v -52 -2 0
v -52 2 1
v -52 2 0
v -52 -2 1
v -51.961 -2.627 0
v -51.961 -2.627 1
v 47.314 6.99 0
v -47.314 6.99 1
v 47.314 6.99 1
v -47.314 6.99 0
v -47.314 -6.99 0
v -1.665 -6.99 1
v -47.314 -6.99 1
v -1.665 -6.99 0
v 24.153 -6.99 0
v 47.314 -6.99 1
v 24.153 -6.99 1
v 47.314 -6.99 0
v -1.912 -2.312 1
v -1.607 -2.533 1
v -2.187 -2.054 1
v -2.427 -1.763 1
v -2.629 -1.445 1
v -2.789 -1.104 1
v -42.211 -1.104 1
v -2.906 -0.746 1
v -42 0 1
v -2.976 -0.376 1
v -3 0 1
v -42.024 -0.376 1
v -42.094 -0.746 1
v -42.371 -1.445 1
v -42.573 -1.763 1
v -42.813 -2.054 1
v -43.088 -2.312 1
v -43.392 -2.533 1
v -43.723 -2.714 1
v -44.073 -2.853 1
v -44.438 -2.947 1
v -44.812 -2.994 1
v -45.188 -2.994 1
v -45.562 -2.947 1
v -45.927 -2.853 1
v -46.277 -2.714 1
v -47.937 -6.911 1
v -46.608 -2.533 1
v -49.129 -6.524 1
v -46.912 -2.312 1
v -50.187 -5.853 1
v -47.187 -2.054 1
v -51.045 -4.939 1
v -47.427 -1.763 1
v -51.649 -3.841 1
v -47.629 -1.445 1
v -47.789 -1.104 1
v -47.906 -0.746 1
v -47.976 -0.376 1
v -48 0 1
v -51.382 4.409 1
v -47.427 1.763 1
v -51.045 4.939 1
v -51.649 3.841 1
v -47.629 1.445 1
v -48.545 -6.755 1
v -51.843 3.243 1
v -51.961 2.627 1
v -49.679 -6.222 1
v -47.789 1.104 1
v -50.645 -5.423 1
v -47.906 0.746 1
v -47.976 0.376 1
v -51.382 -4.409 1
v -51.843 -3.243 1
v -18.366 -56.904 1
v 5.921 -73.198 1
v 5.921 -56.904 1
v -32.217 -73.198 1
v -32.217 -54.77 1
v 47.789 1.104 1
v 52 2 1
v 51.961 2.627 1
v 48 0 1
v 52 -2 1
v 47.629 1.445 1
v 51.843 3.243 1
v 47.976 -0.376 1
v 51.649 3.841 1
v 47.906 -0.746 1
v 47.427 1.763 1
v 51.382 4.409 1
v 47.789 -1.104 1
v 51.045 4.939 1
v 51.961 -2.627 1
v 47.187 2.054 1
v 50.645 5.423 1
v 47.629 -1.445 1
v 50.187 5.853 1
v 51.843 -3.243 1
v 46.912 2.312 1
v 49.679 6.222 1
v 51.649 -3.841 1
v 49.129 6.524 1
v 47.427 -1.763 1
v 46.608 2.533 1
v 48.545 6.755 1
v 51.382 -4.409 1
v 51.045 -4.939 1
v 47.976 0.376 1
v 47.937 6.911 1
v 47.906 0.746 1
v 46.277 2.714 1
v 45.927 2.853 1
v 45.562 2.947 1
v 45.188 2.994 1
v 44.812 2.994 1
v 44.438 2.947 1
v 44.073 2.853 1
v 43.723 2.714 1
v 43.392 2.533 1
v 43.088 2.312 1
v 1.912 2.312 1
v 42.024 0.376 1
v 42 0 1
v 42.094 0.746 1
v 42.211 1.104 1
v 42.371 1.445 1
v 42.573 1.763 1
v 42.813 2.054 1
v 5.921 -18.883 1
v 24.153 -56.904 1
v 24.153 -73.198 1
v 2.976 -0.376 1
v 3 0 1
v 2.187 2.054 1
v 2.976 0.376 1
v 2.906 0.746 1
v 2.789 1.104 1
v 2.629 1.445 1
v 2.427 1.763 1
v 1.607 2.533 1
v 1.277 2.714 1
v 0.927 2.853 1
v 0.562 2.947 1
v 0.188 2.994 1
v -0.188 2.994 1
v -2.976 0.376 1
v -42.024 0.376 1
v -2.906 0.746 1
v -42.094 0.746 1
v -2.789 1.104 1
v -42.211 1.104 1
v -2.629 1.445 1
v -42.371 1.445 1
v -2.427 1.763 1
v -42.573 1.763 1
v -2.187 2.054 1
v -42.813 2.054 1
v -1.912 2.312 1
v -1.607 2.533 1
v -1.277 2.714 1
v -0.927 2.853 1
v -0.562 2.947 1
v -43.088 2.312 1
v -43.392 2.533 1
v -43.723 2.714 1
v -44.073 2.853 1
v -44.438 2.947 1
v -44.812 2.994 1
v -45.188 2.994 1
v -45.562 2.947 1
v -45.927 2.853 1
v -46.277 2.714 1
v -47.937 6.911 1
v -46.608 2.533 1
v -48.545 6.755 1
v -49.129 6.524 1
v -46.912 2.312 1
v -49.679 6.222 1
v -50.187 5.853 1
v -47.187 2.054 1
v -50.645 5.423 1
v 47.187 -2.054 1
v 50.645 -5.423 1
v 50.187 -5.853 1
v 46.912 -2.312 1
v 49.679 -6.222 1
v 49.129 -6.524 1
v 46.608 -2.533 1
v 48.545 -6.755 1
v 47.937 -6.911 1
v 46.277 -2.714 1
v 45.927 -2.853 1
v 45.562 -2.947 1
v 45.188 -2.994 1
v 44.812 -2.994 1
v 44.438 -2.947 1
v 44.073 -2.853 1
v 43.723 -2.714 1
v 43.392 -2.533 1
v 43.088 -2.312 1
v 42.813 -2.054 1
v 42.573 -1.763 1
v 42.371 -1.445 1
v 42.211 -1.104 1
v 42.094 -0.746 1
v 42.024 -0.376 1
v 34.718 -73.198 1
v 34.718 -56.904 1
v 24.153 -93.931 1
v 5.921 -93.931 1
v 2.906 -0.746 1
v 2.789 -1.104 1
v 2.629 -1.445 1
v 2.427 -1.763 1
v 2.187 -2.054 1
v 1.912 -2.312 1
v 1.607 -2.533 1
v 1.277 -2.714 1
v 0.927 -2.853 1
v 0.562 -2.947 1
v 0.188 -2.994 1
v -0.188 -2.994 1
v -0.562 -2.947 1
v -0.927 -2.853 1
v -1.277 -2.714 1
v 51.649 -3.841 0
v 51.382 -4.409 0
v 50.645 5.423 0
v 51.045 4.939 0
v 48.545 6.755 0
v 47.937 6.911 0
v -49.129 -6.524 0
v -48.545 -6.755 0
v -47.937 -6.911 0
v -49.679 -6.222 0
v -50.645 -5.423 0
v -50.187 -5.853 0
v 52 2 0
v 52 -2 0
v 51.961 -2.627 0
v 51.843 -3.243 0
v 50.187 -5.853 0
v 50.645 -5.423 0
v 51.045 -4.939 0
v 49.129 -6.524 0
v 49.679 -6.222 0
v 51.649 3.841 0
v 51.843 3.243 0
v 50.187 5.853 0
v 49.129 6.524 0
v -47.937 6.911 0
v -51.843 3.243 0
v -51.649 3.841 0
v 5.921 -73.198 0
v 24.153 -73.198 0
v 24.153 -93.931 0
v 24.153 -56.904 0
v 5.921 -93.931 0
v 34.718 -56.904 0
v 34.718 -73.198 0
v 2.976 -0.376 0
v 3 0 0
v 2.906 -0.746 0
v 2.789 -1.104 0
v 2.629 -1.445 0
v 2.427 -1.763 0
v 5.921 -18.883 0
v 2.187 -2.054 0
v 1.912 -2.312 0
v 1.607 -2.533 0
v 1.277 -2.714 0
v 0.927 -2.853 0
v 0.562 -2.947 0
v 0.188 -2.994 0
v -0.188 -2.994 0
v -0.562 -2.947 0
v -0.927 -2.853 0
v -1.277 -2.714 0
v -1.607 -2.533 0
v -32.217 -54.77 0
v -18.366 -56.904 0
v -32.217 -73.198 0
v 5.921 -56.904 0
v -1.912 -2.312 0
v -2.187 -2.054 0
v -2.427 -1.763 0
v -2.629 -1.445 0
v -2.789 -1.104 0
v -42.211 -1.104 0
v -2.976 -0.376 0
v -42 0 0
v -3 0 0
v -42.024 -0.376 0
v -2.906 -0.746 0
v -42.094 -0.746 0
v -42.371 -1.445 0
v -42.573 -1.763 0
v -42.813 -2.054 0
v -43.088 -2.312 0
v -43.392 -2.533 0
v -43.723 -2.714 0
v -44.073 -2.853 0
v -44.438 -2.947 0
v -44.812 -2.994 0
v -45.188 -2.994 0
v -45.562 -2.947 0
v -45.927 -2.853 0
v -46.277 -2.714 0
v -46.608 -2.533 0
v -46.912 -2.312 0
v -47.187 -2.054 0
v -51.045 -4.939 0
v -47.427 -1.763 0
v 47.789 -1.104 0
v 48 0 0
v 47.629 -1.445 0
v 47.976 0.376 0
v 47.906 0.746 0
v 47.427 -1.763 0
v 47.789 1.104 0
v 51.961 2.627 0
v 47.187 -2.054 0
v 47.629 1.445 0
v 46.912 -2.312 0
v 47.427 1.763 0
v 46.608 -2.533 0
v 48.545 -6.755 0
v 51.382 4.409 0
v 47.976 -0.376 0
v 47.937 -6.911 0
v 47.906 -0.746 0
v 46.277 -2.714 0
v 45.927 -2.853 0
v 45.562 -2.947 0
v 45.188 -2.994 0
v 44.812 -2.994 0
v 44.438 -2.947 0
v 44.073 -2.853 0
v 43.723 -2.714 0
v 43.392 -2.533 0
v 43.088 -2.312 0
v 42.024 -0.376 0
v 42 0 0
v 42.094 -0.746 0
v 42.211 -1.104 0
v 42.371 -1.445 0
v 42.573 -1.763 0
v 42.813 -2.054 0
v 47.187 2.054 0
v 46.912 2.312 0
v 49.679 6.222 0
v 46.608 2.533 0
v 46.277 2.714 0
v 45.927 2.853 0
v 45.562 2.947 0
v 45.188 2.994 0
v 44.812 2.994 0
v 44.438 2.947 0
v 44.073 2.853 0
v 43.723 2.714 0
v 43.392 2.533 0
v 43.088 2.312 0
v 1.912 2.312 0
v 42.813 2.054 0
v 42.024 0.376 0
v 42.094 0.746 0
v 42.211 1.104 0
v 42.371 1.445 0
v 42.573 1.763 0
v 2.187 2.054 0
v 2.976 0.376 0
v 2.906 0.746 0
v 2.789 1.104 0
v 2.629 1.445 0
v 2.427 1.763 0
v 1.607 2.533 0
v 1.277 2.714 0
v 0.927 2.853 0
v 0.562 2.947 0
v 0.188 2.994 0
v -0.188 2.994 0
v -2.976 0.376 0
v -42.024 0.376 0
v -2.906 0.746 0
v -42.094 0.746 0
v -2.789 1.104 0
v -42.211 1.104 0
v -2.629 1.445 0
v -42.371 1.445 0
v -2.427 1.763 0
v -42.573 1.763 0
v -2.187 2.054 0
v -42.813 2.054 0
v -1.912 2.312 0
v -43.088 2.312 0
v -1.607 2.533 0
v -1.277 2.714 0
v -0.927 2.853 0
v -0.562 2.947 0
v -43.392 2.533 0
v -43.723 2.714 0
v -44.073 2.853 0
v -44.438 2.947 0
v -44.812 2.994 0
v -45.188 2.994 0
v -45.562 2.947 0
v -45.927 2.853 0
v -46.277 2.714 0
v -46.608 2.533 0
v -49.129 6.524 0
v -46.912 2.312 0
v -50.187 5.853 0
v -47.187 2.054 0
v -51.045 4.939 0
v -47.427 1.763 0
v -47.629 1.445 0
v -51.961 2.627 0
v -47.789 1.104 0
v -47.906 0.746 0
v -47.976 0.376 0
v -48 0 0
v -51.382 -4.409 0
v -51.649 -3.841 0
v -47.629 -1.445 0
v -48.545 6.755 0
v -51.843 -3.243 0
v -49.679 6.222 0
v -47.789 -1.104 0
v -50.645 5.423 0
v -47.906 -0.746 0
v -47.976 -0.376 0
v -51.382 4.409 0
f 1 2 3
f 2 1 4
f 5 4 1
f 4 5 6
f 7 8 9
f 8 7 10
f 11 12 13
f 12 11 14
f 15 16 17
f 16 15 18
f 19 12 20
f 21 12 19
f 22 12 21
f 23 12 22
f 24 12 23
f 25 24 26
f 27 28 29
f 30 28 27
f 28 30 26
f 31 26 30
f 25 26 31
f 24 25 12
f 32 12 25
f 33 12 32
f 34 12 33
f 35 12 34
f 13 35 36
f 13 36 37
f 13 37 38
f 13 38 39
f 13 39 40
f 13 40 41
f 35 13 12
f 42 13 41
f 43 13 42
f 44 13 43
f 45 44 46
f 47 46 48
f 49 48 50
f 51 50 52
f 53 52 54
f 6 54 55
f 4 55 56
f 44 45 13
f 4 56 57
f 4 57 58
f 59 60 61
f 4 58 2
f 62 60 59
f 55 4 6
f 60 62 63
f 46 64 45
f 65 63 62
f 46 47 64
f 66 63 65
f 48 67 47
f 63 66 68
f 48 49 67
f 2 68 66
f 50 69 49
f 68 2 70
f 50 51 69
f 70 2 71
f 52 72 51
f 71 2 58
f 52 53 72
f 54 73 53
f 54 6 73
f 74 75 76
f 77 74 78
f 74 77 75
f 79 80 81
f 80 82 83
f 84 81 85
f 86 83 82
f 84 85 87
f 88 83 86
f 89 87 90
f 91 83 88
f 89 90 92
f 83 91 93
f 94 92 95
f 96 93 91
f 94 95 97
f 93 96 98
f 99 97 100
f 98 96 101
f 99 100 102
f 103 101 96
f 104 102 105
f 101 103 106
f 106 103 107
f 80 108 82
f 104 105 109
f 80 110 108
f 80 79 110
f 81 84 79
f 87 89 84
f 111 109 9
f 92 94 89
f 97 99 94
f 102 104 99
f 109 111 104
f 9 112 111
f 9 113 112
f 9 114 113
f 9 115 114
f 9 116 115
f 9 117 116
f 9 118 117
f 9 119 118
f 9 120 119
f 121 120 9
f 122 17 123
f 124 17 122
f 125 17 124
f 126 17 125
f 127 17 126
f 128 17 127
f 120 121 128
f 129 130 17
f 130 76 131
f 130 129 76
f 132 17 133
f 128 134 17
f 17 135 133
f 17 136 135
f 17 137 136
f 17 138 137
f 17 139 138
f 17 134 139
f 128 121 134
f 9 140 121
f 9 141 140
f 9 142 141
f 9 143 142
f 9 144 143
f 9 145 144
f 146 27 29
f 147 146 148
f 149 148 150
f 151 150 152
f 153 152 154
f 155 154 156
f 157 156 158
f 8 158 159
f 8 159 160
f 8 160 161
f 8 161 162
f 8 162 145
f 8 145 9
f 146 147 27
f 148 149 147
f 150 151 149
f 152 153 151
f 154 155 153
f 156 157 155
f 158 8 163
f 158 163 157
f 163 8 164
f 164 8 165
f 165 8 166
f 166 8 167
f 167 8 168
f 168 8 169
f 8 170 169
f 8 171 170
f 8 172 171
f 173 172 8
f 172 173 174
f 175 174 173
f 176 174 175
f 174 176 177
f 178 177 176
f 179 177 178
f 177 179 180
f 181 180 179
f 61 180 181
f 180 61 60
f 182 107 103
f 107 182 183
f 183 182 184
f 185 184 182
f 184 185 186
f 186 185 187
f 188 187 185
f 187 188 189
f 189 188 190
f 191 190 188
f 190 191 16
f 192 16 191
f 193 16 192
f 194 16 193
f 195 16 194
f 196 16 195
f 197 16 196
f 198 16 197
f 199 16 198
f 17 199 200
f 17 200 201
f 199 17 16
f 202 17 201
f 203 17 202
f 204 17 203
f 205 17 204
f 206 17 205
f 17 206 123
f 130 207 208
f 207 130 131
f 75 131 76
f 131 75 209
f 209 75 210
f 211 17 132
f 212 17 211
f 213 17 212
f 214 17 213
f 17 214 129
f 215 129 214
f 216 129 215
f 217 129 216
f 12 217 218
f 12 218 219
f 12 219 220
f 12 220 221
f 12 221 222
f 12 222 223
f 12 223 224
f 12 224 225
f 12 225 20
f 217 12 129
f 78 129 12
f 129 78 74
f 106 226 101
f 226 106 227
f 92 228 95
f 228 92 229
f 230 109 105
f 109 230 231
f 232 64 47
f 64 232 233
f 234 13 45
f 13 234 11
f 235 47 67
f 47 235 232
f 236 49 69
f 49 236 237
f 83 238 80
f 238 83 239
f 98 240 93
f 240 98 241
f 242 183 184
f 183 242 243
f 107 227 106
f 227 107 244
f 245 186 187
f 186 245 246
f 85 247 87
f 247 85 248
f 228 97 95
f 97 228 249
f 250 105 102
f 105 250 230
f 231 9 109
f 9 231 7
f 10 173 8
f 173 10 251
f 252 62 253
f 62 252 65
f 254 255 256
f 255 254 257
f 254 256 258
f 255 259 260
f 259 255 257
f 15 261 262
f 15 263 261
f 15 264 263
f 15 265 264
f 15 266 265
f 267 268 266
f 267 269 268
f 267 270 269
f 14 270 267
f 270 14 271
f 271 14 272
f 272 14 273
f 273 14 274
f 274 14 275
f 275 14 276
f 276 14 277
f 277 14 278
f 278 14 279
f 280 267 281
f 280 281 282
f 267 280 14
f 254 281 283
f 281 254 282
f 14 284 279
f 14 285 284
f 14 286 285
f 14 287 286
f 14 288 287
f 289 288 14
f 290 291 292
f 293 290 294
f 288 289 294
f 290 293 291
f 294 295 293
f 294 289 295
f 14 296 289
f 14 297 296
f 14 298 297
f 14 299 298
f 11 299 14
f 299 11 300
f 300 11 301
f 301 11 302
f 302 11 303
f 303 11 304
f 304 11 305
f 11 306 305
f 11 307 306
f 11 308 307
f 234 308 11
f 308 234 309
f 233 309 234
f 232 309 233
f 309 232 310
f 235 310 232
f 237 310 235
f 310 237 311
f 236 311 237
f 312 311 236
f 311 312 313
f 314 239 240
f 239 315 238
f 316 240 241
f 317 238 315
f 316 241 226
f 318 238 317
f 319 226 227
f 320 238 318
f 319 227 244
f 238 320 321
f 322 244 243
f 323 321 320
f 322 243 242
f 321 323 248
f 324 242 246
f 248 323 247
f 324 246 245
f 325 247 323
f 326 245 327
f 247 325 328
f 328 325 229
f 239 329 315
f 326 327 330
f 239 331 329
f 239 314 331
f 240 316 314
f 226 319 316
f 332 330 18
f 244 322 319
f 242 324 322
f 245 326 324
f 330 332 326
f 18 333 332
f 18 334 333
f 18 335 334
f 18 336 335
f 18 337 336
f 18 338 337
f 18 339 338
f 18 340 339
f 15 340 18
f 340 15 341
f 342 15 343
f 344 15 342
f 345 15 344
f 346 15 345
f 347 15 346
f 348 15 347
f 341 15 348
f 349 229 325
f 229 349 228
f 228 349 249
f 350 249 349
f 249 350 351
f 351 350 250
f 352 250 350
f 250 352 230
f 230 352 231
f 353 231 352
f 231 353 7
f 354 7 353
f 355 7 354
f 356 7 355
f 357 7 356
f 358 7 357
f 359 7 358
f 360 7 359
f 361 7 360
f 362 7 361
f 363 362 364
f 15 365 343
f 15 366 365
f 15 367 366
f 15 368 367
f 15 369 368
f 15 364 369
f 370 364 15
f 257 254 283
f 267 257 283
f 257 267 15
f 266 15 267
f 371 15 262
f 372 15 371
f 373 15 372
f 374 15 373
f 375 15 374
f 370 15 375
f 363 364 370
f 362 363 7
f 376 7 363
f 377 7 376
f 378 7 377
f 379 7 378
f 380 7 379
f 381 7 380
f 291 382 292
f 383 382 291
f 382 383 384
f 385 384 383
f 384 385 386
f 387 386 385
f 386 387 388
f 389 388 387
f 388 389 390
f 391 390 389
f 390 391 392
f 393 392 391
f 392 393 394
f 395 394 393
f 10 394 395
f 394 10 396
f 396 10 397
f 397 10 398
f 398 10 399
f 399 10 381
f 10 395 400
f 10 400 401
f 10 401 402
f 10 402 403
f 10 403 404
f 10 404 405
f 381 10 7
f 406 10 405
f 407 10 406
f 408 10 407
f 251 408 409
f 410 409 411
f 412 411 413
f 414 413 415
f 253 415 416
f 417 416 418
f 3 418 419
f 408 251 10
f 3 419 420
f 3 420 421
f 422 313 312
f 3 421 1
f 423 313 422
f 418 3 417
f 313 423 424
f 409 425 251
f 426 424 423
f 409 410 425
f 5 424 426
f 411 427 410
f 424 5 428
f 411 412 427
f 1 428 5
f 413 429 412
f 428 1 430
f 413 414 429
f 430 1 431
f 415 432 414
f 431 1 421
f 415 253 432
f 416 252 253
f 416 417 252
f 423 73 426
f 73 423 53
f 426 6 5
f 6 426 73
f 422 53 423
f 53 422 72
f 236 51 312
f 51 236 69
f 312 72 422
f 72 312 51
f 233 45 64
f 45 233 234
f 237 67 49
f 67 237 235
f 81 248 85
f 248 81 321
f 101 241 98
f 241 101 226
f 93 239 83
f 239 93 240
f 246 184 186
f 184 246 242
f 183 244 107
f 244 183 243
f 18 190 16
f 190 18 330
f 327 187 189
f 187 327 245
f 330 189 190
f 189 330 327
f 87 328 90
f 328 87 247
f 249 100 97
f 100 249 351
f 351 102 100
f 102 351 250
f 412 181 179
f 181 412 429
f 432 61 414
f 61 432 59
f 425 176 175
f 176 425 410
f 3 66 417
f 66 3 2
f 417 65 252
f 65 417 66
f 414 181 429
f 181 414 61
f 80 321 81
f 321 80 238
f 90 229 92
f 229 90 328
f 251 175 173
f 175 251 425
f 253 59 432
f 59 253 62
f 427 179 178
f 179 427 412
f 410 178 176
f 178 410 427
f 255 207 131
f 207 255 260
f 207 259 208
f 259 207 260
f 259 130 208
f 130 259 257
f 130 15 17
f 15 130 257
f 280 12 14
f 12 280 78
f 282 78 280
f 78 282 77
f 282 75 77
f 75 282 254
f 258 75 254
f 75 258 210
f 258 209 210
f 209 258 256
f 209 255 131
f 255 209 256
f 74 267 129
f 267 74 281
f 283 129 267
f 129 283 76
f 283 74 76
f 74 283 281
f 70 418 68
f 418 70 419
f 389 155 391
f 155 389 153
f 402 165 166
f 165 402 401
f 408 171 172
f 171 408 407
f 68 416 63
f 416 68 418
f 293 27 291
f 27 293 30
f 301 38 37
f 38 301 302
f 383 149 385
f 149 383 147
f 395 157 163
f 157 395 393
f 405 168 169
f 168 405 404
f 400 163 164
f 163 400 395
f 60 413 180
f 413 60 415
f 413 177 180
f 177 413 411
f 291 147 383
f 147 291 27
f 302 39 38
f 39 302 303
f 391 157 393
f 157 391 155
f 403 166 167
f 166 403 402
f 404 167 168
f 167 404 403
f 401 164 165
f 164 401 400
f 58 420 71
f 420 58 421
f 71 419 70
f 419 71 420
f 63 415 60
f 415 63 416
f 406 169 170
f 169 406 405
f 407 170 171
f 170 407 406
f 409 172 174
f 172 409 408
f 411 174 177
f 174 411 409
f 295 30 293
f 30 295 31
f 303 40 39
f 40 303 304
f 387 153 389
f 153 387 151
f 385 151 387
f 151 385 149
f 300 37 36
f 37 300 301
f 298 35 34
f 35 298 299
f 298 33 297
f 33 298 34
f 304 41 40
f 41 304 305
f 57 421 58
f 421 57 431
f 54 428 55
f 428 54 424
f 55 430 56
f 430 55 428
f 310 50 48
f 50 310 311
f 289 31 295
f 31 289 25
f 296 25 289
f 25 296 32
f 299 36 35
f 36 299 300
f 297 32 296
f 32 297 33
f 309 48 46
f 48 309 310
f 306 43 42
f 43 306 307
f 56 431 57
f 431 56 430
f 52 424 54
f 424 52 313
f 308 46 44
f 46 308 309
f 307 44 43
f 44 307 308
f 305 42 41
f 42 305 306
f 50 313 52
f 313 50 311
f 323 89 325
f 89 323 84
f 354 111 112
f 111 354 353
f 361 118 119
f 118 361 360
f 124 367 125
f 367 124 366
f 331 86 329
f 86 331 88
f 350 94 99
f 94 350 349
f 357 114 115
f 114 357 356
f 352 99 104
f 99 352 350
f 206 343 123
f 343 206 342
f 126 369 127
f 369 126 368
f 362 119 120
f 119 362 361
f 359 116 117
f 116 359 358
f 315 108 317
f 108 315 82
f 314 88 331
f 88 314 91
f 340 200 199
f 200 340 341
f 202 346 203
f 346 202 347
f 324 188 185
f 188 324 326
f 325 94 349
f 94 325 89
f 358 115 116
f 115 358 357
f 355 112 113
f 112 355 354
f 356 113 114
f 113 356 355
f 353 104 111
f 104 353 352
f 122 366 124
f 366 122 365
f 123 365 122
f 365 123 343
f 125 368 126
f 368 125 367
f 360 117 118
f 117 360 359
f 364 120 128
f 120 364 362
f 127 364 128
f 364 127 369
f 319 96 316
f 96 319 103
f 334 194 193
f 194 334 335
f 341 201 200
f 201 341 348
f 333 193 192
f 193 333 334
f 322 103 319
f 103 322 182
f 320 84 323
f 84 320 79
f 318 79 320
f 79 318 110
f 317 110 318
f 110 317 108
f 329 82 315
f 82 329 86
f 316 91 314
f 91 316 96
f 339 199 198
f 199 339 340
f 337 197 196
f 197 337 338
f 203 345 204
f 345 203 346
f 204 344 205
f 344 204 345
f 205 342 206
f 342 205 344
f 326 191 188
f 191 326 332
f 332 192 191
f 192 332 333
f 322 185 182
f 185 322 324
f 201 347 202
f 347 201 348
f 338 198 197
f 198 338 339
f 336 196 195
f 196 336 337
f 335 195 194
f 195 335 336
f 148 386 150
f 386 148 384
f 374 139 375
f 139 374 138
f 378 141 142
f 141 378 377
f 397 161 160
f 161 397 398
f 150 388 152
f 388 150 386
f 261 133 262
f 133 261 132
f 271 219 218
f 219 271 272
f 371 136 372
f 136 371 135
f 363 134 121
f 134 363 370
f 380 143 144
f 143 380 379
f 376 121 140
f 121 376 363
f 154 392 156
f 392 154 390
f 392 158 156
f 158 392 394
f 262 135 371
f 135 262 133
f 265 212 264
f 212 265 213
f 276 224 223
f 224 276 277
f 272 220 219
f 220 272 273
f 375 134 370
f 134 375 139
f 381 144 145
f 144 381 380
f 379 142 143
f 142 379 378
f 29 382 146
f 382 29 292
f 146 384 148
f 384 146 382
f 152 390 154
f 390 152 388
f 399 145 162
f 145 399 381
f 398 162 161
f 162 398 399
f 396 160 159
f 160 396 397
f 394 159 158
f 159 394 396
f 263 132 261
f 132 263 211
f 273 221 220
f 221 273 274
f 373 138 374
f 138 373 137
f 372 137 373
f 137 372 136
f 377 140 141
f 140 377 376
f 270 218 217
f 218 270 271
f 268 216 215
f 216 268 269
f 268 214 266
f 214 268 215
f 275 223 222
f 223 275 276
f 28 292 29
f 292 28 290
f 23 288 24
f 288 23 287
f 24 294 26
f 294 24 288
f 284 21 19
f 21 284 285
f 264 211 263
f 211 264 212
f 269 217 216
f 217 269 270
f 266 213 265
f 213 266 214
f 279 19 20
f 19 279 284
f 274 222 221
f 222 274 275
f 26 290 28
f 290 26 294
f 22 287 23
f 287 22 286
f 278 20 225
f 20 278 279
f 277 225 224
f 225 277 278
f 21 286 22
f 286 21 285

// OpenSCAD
$fn = 50;


difference() {
	union() {
		translate(v = [0, 0, 0]) {
			rotate(a = [0, 0, 0]) {
				hull() {
					translate(v = [-47.0000000000, 2.0000000000, 0]) {
						rotate(a = [0, 0, 0]) {
							translate(v = [0, 0, 0]) {
								rotate(a = [0, 0, 0]) {
									cylinder(h = 1, r = 5);
								}
							}
						}
					}
					translate(v = [47.0000000000, 2.0000000000, 0]) {
						rotate(a = [0, 0, 0]) {
							translate(v = [0, 0, 0]) {
								rotate(a = [0, 0, 0]) {
									cylinder(h = 1, r = 5);
								}
							}
						}
					}
					translate(v = [-47.0000000000, -2.0000000000, 0]) {
						rotate(a = [0, 0, 0]) {
							translate(v = [0, 0, 0]) {
								rotate(a = [0, 0, 0]) {
									cylinder(h = 1, r = 5);
								}
							}
						}
					}
					translate(v = [47.0000000000, -2.0000000000, 0]) {
						rotate(a = [0, 0, 0]) {
							translate(v = [0, 0, 0]) {
								rotate(a = [0, 0, 0]) {
									cylinder(h = 1, r = 5);
								}
							}
						}
					}
				}
			}
		}
		translate(v = [0, 0, 0]) {
			rotate(a = [0, 0, 0]) {
				linear_extrude(height = 1) {
					text(font = "DejaVu Sans Mono:style=Bold", halign = "center", size = 95.0000000000, text = "4", valign = "top");
				}
			}
		}
	}
	union() {
		translate(v = [-45.0000000000, 0.0000000000, -125.0000000000]) {
			rotate(a = [0, 0, 0]) {
				cylinder(h = 250, r = 3.0000000000);
			}
		}
		translate(v = [45.0000000000, 0.0000000000, -125.0000000000]) {
			rotate(a = [0, 0, 0]) {
				cylinder(h = 250, r = 3.0000000000);
			}
		}
		translate(v = [45.0000000000, 0.0000000000, -125.0000000000]) {
			rotate(a = [0, 0, 0]) {
				cylinder(h = 250, r = 3.0000000000);
			}
		}
		translate(v = [0, 0, -125.0000000000]) {
			rotate(a = [0, 0, 0]) {
				cylinder(h = 250, r = 3.0000000000);
			}
		}
	}
}
